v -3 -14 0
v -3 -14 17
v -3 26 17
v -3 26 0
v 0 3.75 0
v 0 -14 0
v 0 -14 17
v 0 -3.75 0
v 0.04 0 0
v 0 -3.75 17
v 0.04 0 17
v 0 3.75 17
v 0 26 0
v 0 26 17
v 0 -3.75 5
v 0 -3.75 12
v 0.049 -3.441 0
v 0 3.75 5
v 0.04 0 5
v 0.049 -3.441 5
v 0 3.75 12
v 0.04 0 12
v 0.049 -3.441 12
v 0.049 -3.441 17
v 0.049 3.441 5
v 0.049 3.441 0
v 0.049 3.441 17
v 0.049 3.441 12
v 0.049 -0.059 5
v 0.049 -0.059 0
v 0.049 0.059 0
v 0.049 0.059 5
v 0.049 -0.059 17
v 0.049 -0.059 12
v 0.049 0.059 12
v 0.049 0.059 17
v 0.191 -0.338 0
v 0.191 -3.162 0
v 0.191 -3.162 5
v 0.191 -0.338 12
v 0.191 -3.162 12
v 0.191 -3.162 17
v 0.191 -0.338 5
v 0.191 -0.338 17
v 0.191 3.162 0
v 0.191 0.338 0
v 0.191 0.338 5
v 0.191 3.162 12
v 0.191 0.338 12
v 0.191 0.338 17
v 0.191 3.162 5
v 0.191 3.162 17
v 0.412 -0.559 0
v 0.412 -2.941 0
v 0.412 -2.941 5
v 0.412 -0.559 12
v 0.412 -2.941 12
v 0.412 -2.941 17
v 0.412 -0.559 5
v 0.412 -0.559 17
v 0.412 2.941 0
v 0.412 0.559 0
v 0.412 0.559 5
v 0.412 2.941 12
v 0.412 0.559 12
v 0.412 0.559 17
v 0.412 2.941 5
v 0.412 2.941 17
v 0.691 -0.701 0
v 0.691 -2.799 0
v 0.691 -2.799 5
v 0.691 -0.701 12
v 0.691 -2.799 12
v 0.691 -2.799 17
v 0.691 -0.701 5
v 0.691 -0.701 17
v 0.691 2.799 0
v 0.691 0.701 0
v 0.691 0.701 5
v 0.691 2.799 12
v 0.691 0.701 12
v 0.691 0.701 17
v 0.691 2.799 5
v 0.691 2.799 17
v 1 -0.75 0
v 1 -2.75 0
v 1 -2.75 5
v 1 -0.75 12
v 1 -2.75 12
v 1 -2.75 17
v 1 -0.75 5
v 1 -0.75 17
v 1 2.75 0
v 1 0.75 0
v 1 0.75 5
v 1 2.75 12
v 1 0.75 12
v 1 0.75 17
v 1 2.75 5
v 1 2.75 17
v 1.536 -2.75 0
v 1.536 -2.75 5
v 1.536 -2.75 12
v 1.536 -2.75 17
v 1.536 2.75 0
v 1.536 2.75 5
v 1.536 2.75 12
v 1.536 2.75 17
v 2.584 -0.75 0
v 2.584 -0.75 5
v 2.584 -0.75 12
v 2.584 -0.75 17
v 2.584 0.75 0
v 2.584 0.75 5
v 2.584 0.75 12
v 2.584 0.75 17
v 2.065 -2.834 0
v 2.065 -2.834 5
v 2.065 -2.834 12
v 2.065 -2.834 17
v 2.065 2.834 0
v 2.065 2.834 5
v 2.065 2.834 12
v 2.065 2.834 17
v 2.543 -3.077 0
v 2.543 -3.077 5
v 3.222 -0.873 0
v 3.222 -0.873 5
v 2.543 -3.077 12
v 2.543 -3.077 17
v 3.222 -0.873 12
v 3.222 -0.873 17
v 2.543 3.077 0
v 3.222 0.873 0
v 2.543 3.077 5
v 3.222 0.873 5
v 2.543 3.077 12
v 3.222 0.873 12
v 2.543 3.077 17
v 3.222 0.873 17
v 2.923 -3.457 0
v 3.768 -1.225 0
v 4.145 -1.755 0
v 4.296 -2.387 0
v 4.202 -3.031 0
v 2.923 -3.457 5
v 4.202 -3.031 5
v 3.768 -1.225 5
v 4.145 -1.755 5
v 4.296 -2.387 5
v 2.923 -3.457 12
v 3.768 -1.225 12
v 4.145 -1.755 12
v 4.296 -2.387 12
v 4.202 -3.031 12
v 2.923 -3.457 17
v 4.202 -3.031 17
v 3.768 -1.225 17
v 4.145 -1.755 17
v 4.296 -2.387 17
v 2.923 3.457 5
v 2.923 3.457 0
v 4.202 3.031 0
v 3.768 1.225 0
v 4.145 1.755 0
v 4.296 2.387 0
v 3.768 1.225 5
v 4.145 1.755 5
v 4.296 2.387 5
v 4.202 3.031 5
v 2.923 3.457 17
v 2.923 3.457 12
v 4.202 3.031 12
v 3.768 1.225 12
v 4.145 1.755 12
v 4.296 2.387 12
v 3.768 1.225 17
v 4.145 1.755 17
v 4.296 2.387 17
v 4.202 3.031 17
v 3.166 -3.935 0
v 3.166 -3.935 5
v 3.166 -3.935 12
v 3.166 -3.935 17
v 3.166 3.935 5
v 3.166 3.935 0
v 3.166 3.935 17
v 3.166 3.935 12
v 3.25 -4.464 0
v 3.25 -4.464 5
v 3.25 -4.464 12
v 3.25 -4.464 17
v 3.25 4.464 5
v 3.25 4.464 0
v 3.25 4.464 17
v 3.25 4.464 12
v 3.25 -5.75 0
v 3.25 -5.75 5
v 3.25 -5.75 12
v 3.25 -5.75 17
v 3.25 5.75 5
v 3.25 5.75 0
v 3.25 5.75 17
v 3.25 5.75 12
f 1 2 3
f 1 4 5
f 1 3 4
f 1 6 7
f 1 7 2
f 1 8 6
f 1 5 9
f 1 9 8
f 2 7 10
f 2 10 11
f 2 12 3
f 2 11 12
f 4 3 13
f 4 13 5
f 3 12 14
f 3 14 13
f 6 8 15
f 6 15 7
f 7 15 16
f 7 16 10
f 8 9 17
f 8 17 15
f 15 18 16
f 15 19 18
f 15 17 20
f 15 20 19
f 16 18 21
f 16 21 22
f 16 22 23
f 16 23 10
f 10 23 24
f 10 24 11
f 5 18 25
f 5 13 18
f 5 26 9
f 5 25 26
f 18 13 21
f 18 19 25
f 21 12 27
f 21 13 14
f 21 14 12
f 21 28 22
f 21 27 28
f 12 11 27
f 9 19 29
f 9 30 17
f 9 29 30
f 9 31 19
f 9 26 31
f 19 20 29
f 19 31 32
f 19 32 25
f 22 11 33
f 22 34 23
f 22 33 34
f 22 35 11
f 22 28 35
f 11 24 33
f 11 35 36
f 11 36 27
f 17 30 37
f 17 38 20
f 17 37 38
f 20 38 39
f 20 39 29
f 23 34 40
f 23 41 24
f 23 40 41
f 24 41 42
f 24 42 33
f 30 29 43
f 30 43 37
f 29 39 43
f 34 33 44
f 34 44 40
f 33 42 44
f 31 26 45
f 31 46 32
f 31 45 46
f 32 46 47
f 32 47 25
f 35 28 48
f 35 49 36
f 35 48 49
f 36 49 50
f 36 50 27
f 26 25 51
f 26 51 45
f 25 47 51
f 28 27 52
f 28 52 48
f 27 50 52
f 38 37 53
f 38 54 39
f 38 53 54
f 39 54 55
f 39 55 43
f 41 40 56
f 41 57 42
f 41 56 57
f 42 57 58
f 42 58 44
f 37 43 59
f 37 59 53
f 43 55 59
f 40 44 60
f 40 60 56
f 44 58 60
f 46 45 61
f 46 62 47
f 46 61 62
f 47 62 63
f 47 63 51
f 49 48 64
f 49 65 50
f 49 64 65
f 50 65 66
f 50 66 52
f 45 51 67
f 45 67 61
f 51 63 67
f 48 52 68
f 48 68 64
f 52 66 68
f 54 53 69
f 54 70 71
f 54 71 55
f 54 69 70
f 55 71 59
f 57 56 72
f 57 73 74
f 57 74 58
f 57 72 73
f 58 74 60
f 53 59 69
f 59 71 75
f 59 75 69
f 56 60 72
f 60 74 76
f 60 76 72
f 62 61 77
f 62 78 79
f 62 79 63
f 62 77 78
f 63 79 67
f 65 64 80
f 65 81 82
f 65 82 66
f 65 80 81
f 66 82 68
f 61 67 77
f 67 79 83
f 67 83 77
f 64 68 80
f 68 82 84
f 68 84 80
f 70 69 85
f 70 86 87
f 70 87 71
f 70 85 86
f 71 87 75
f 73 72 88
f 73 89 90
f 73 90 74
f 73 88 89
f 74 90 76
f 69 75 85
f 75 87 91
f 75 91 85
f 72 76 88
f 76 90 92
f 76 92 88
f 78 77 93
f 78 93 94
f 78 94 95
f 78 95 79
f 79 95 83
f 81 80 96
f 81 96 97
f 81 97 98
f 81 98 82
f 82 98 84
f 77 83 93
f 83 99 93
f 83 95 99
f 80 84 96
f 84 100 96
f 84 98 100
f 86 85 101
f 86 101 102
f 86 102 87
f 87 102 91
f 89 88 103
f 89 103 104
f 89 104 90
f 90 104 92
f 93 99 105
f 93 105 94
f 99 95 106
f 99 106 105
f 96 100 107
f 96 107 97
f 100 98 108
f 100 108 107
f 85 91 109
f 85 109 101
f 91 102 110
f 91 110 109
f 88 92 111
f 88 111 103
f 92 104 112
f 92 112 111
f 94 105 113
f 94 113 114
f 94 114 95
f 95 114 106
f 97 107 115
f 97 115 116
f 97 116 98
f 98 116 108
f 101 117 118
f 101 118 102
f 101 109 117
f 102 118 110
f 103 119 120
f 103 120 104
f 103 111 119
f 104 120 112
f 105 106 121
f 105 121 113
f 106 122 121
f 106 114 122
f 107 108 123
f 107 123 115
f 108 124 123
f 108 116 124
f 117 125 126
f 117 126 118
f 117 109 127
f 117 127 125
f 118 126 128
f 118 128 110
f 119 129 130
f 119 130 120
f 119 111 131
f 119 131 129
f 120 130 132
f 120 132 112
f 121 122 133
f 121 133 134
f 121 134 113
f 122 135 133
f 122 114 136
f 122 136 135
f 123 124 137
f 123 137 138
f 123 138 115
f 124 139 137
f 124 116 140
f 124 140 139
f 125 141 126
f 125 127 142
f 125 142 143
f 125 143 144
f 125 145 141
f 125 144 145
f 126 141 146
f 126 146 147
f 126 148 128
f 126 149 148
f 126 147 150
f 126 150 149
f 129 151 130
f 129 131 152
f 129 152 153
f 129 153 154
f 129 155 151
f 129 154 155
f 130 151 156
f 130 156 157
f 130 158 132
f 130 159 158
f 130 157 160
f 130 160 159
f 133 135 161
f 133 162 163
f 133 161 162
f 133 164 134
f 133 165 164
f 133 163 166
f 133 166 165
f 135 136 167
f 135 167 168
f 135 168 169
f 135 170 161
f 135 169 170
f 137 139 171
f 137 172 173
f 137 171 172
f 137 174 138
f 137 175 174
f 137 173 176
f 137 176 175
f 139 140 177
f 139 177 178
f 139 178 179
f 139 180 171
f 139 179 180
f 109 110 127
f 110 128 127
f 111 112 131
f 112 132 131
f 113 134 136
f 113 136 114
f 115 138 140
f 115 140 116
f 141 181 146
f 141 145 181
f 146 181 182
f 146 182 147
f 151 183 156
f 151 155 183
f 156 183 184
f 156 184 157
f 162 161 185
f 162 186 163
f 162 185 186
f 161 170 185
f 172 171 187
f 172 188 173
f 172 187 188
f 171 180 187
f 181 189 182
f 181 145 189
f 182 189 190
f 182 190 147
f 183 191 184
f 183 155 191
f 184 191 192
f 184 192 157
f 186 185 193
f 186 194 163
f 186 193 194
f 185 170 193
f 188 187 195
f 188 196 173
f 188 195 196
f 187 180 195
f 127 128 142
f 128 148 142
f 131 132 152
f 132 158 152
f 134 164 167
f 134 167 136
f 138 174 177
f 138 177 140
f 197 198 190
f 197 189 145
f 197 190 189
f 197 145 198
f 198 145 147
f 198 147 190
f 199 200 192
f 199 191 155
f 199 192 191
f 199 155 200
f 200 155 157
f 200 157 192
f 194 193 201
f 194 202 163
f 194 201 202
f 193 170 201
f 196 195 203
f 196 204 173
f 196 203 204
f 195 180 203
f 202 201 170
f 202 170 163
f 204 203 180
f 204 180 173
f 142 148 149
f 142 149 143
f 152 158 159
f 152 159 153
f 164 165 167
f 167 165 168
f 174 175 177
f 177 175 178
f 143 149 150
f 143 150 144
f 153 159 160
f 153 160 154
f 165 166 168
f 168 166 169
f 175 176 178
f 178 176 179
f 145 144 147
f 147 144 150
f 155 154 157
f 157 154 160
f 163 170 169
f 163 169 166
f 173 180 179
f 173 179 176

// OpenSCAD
use <Round-Anything/polyround.scad>

BRACKET_INNER_CHANNEL_NARROW = 6.75;
CUBBY_WIDTH = 336;
BRACKET_DEPTH  = 40;
MOUNTING_DEPTH = 14;
BRACKET_HEIGHT = 17;
BRACKET_WIDTH = 10;
BRACKET_LIP_WIDTH = 3;
BRACKET_THICKNESS = 3;

SNAP_PIN_GAP = 1.5;
SNAP_PIN_TOOTH_WIDTH = 3;
SNAP_PIN_THICKNESS = 2;
SNAP_PIN_LENGTH = 5;
SNAP_PIN_LIP_DEPTH = 1.75;
SNAP_PIN_HEIGHT = 5;

function translateVector3s(vectors, translation) =
    [for (v = vectors) [v.x + translation.x, v.y + translation.y, v.z + translation.z]];


function translateVector2s(vectors, translation) =
    translateVector3s(vectors, [translation.x, translation.y, 0]);

function multiplyVector3s(vectors, factor) =
    [for (v = vectors) [v.x * factor.x, v.y * factor.y, v.z * factor.z]];

function multiplyVector2s(vectors, factor) =
    multiplyVector3s(vectors, [factor.x, factor.y, 1]);


function pinProfile(pinLength, pinWidth, toothLength, toothDepth, pinEnterRadius = undef, pinExitRadius = undef) =
    let(
        actualPinEnterRadius = pinEnterRadius == undef ? pinWidth / 2 : pinEnterRadius,
        actualPinExitRadius = pinExitRadius == undef ? pinWidth / 2 : pinExitRadius,
        toothTipRadius = toothDepth / toothLength,
        centerOffset = pinWidth / 2,
        leftFlangePoint = [0, -actualPinEnterRadius, 0],
        rightFlangePoint = [0, actualPinEnterRadius + pinWidth, 0],
        toothX = pinLength - toothLength,
        toothY = pinWidth + toothDepth,


        points = [
            leftFlangePoint,
            [0        , 0       , actualPinEnterRadius],
            [pinLength, 0       , toothTipRadius      ],
            [toothX   , toothY  , 0                   ],
            [toothX   , pinWidth, toothTipRadius      ],
            [0        , pinWidth, actualPinExitRadius ],
            rightFlangePoint
        ],
        horizontallyCentered = translateVector2s(points, [0, -centerOffset])
    ) horizontallyCentered;

function rectProfile(length, width, cornerRadius = 0) =
    [
        [0     , width, cornerRadius],
        [length, width, cornerRadius],
        [length, 0    , cornerRadius],
        [0     , 0    , cornerRadius],
    ];

module createPin(extrudeHeight = 10, flip = false) {
    transformVector = flip ? [1,-1,1] : [1,1,1];
    points = multiplyVector2s(
        pinProfile(SNAP_PIN_LENGTH, SNAP_PIN_THICKNESS, SNAP_PIN_LIP_DEPTH, SNAP_PIN_TOOTH_WIDTH), 
        transformVector
    );
    linear_extrude(extrudeHeight) polygon(
        polyRound(points)
    );
}

module createPinPair(spacing, extrudeHeight) {
    union() {
        translate([0, SNAP_PIN_THICKNESS/2 + spacing/2, 0]) createPin(extrudeHeight);
        translate([0, -SNAP_PIN_THICKNESS/2 - spacing/2, 0]) createPin(extrudeHeight, true);
    }
}

union() {
    translate([-BRACKET_THICKNESS, -MOUNTING_DEPTH, 0]) cube([BRACKET_THICKNESS, BRACKET_DEPTH, BRACKET_HEIGHT]);
    union() {
        createPinPair(SNAP_PIN_GAP, SNAP_PIN_HEIGHT);
        translate([0, 0, BRACKET_HEIGHT - SNAP_PIN_HEIGHT]) createPinPair(SNAP_PIN_GAP, SNAP_PIN_HEIGHT);
    }
}
